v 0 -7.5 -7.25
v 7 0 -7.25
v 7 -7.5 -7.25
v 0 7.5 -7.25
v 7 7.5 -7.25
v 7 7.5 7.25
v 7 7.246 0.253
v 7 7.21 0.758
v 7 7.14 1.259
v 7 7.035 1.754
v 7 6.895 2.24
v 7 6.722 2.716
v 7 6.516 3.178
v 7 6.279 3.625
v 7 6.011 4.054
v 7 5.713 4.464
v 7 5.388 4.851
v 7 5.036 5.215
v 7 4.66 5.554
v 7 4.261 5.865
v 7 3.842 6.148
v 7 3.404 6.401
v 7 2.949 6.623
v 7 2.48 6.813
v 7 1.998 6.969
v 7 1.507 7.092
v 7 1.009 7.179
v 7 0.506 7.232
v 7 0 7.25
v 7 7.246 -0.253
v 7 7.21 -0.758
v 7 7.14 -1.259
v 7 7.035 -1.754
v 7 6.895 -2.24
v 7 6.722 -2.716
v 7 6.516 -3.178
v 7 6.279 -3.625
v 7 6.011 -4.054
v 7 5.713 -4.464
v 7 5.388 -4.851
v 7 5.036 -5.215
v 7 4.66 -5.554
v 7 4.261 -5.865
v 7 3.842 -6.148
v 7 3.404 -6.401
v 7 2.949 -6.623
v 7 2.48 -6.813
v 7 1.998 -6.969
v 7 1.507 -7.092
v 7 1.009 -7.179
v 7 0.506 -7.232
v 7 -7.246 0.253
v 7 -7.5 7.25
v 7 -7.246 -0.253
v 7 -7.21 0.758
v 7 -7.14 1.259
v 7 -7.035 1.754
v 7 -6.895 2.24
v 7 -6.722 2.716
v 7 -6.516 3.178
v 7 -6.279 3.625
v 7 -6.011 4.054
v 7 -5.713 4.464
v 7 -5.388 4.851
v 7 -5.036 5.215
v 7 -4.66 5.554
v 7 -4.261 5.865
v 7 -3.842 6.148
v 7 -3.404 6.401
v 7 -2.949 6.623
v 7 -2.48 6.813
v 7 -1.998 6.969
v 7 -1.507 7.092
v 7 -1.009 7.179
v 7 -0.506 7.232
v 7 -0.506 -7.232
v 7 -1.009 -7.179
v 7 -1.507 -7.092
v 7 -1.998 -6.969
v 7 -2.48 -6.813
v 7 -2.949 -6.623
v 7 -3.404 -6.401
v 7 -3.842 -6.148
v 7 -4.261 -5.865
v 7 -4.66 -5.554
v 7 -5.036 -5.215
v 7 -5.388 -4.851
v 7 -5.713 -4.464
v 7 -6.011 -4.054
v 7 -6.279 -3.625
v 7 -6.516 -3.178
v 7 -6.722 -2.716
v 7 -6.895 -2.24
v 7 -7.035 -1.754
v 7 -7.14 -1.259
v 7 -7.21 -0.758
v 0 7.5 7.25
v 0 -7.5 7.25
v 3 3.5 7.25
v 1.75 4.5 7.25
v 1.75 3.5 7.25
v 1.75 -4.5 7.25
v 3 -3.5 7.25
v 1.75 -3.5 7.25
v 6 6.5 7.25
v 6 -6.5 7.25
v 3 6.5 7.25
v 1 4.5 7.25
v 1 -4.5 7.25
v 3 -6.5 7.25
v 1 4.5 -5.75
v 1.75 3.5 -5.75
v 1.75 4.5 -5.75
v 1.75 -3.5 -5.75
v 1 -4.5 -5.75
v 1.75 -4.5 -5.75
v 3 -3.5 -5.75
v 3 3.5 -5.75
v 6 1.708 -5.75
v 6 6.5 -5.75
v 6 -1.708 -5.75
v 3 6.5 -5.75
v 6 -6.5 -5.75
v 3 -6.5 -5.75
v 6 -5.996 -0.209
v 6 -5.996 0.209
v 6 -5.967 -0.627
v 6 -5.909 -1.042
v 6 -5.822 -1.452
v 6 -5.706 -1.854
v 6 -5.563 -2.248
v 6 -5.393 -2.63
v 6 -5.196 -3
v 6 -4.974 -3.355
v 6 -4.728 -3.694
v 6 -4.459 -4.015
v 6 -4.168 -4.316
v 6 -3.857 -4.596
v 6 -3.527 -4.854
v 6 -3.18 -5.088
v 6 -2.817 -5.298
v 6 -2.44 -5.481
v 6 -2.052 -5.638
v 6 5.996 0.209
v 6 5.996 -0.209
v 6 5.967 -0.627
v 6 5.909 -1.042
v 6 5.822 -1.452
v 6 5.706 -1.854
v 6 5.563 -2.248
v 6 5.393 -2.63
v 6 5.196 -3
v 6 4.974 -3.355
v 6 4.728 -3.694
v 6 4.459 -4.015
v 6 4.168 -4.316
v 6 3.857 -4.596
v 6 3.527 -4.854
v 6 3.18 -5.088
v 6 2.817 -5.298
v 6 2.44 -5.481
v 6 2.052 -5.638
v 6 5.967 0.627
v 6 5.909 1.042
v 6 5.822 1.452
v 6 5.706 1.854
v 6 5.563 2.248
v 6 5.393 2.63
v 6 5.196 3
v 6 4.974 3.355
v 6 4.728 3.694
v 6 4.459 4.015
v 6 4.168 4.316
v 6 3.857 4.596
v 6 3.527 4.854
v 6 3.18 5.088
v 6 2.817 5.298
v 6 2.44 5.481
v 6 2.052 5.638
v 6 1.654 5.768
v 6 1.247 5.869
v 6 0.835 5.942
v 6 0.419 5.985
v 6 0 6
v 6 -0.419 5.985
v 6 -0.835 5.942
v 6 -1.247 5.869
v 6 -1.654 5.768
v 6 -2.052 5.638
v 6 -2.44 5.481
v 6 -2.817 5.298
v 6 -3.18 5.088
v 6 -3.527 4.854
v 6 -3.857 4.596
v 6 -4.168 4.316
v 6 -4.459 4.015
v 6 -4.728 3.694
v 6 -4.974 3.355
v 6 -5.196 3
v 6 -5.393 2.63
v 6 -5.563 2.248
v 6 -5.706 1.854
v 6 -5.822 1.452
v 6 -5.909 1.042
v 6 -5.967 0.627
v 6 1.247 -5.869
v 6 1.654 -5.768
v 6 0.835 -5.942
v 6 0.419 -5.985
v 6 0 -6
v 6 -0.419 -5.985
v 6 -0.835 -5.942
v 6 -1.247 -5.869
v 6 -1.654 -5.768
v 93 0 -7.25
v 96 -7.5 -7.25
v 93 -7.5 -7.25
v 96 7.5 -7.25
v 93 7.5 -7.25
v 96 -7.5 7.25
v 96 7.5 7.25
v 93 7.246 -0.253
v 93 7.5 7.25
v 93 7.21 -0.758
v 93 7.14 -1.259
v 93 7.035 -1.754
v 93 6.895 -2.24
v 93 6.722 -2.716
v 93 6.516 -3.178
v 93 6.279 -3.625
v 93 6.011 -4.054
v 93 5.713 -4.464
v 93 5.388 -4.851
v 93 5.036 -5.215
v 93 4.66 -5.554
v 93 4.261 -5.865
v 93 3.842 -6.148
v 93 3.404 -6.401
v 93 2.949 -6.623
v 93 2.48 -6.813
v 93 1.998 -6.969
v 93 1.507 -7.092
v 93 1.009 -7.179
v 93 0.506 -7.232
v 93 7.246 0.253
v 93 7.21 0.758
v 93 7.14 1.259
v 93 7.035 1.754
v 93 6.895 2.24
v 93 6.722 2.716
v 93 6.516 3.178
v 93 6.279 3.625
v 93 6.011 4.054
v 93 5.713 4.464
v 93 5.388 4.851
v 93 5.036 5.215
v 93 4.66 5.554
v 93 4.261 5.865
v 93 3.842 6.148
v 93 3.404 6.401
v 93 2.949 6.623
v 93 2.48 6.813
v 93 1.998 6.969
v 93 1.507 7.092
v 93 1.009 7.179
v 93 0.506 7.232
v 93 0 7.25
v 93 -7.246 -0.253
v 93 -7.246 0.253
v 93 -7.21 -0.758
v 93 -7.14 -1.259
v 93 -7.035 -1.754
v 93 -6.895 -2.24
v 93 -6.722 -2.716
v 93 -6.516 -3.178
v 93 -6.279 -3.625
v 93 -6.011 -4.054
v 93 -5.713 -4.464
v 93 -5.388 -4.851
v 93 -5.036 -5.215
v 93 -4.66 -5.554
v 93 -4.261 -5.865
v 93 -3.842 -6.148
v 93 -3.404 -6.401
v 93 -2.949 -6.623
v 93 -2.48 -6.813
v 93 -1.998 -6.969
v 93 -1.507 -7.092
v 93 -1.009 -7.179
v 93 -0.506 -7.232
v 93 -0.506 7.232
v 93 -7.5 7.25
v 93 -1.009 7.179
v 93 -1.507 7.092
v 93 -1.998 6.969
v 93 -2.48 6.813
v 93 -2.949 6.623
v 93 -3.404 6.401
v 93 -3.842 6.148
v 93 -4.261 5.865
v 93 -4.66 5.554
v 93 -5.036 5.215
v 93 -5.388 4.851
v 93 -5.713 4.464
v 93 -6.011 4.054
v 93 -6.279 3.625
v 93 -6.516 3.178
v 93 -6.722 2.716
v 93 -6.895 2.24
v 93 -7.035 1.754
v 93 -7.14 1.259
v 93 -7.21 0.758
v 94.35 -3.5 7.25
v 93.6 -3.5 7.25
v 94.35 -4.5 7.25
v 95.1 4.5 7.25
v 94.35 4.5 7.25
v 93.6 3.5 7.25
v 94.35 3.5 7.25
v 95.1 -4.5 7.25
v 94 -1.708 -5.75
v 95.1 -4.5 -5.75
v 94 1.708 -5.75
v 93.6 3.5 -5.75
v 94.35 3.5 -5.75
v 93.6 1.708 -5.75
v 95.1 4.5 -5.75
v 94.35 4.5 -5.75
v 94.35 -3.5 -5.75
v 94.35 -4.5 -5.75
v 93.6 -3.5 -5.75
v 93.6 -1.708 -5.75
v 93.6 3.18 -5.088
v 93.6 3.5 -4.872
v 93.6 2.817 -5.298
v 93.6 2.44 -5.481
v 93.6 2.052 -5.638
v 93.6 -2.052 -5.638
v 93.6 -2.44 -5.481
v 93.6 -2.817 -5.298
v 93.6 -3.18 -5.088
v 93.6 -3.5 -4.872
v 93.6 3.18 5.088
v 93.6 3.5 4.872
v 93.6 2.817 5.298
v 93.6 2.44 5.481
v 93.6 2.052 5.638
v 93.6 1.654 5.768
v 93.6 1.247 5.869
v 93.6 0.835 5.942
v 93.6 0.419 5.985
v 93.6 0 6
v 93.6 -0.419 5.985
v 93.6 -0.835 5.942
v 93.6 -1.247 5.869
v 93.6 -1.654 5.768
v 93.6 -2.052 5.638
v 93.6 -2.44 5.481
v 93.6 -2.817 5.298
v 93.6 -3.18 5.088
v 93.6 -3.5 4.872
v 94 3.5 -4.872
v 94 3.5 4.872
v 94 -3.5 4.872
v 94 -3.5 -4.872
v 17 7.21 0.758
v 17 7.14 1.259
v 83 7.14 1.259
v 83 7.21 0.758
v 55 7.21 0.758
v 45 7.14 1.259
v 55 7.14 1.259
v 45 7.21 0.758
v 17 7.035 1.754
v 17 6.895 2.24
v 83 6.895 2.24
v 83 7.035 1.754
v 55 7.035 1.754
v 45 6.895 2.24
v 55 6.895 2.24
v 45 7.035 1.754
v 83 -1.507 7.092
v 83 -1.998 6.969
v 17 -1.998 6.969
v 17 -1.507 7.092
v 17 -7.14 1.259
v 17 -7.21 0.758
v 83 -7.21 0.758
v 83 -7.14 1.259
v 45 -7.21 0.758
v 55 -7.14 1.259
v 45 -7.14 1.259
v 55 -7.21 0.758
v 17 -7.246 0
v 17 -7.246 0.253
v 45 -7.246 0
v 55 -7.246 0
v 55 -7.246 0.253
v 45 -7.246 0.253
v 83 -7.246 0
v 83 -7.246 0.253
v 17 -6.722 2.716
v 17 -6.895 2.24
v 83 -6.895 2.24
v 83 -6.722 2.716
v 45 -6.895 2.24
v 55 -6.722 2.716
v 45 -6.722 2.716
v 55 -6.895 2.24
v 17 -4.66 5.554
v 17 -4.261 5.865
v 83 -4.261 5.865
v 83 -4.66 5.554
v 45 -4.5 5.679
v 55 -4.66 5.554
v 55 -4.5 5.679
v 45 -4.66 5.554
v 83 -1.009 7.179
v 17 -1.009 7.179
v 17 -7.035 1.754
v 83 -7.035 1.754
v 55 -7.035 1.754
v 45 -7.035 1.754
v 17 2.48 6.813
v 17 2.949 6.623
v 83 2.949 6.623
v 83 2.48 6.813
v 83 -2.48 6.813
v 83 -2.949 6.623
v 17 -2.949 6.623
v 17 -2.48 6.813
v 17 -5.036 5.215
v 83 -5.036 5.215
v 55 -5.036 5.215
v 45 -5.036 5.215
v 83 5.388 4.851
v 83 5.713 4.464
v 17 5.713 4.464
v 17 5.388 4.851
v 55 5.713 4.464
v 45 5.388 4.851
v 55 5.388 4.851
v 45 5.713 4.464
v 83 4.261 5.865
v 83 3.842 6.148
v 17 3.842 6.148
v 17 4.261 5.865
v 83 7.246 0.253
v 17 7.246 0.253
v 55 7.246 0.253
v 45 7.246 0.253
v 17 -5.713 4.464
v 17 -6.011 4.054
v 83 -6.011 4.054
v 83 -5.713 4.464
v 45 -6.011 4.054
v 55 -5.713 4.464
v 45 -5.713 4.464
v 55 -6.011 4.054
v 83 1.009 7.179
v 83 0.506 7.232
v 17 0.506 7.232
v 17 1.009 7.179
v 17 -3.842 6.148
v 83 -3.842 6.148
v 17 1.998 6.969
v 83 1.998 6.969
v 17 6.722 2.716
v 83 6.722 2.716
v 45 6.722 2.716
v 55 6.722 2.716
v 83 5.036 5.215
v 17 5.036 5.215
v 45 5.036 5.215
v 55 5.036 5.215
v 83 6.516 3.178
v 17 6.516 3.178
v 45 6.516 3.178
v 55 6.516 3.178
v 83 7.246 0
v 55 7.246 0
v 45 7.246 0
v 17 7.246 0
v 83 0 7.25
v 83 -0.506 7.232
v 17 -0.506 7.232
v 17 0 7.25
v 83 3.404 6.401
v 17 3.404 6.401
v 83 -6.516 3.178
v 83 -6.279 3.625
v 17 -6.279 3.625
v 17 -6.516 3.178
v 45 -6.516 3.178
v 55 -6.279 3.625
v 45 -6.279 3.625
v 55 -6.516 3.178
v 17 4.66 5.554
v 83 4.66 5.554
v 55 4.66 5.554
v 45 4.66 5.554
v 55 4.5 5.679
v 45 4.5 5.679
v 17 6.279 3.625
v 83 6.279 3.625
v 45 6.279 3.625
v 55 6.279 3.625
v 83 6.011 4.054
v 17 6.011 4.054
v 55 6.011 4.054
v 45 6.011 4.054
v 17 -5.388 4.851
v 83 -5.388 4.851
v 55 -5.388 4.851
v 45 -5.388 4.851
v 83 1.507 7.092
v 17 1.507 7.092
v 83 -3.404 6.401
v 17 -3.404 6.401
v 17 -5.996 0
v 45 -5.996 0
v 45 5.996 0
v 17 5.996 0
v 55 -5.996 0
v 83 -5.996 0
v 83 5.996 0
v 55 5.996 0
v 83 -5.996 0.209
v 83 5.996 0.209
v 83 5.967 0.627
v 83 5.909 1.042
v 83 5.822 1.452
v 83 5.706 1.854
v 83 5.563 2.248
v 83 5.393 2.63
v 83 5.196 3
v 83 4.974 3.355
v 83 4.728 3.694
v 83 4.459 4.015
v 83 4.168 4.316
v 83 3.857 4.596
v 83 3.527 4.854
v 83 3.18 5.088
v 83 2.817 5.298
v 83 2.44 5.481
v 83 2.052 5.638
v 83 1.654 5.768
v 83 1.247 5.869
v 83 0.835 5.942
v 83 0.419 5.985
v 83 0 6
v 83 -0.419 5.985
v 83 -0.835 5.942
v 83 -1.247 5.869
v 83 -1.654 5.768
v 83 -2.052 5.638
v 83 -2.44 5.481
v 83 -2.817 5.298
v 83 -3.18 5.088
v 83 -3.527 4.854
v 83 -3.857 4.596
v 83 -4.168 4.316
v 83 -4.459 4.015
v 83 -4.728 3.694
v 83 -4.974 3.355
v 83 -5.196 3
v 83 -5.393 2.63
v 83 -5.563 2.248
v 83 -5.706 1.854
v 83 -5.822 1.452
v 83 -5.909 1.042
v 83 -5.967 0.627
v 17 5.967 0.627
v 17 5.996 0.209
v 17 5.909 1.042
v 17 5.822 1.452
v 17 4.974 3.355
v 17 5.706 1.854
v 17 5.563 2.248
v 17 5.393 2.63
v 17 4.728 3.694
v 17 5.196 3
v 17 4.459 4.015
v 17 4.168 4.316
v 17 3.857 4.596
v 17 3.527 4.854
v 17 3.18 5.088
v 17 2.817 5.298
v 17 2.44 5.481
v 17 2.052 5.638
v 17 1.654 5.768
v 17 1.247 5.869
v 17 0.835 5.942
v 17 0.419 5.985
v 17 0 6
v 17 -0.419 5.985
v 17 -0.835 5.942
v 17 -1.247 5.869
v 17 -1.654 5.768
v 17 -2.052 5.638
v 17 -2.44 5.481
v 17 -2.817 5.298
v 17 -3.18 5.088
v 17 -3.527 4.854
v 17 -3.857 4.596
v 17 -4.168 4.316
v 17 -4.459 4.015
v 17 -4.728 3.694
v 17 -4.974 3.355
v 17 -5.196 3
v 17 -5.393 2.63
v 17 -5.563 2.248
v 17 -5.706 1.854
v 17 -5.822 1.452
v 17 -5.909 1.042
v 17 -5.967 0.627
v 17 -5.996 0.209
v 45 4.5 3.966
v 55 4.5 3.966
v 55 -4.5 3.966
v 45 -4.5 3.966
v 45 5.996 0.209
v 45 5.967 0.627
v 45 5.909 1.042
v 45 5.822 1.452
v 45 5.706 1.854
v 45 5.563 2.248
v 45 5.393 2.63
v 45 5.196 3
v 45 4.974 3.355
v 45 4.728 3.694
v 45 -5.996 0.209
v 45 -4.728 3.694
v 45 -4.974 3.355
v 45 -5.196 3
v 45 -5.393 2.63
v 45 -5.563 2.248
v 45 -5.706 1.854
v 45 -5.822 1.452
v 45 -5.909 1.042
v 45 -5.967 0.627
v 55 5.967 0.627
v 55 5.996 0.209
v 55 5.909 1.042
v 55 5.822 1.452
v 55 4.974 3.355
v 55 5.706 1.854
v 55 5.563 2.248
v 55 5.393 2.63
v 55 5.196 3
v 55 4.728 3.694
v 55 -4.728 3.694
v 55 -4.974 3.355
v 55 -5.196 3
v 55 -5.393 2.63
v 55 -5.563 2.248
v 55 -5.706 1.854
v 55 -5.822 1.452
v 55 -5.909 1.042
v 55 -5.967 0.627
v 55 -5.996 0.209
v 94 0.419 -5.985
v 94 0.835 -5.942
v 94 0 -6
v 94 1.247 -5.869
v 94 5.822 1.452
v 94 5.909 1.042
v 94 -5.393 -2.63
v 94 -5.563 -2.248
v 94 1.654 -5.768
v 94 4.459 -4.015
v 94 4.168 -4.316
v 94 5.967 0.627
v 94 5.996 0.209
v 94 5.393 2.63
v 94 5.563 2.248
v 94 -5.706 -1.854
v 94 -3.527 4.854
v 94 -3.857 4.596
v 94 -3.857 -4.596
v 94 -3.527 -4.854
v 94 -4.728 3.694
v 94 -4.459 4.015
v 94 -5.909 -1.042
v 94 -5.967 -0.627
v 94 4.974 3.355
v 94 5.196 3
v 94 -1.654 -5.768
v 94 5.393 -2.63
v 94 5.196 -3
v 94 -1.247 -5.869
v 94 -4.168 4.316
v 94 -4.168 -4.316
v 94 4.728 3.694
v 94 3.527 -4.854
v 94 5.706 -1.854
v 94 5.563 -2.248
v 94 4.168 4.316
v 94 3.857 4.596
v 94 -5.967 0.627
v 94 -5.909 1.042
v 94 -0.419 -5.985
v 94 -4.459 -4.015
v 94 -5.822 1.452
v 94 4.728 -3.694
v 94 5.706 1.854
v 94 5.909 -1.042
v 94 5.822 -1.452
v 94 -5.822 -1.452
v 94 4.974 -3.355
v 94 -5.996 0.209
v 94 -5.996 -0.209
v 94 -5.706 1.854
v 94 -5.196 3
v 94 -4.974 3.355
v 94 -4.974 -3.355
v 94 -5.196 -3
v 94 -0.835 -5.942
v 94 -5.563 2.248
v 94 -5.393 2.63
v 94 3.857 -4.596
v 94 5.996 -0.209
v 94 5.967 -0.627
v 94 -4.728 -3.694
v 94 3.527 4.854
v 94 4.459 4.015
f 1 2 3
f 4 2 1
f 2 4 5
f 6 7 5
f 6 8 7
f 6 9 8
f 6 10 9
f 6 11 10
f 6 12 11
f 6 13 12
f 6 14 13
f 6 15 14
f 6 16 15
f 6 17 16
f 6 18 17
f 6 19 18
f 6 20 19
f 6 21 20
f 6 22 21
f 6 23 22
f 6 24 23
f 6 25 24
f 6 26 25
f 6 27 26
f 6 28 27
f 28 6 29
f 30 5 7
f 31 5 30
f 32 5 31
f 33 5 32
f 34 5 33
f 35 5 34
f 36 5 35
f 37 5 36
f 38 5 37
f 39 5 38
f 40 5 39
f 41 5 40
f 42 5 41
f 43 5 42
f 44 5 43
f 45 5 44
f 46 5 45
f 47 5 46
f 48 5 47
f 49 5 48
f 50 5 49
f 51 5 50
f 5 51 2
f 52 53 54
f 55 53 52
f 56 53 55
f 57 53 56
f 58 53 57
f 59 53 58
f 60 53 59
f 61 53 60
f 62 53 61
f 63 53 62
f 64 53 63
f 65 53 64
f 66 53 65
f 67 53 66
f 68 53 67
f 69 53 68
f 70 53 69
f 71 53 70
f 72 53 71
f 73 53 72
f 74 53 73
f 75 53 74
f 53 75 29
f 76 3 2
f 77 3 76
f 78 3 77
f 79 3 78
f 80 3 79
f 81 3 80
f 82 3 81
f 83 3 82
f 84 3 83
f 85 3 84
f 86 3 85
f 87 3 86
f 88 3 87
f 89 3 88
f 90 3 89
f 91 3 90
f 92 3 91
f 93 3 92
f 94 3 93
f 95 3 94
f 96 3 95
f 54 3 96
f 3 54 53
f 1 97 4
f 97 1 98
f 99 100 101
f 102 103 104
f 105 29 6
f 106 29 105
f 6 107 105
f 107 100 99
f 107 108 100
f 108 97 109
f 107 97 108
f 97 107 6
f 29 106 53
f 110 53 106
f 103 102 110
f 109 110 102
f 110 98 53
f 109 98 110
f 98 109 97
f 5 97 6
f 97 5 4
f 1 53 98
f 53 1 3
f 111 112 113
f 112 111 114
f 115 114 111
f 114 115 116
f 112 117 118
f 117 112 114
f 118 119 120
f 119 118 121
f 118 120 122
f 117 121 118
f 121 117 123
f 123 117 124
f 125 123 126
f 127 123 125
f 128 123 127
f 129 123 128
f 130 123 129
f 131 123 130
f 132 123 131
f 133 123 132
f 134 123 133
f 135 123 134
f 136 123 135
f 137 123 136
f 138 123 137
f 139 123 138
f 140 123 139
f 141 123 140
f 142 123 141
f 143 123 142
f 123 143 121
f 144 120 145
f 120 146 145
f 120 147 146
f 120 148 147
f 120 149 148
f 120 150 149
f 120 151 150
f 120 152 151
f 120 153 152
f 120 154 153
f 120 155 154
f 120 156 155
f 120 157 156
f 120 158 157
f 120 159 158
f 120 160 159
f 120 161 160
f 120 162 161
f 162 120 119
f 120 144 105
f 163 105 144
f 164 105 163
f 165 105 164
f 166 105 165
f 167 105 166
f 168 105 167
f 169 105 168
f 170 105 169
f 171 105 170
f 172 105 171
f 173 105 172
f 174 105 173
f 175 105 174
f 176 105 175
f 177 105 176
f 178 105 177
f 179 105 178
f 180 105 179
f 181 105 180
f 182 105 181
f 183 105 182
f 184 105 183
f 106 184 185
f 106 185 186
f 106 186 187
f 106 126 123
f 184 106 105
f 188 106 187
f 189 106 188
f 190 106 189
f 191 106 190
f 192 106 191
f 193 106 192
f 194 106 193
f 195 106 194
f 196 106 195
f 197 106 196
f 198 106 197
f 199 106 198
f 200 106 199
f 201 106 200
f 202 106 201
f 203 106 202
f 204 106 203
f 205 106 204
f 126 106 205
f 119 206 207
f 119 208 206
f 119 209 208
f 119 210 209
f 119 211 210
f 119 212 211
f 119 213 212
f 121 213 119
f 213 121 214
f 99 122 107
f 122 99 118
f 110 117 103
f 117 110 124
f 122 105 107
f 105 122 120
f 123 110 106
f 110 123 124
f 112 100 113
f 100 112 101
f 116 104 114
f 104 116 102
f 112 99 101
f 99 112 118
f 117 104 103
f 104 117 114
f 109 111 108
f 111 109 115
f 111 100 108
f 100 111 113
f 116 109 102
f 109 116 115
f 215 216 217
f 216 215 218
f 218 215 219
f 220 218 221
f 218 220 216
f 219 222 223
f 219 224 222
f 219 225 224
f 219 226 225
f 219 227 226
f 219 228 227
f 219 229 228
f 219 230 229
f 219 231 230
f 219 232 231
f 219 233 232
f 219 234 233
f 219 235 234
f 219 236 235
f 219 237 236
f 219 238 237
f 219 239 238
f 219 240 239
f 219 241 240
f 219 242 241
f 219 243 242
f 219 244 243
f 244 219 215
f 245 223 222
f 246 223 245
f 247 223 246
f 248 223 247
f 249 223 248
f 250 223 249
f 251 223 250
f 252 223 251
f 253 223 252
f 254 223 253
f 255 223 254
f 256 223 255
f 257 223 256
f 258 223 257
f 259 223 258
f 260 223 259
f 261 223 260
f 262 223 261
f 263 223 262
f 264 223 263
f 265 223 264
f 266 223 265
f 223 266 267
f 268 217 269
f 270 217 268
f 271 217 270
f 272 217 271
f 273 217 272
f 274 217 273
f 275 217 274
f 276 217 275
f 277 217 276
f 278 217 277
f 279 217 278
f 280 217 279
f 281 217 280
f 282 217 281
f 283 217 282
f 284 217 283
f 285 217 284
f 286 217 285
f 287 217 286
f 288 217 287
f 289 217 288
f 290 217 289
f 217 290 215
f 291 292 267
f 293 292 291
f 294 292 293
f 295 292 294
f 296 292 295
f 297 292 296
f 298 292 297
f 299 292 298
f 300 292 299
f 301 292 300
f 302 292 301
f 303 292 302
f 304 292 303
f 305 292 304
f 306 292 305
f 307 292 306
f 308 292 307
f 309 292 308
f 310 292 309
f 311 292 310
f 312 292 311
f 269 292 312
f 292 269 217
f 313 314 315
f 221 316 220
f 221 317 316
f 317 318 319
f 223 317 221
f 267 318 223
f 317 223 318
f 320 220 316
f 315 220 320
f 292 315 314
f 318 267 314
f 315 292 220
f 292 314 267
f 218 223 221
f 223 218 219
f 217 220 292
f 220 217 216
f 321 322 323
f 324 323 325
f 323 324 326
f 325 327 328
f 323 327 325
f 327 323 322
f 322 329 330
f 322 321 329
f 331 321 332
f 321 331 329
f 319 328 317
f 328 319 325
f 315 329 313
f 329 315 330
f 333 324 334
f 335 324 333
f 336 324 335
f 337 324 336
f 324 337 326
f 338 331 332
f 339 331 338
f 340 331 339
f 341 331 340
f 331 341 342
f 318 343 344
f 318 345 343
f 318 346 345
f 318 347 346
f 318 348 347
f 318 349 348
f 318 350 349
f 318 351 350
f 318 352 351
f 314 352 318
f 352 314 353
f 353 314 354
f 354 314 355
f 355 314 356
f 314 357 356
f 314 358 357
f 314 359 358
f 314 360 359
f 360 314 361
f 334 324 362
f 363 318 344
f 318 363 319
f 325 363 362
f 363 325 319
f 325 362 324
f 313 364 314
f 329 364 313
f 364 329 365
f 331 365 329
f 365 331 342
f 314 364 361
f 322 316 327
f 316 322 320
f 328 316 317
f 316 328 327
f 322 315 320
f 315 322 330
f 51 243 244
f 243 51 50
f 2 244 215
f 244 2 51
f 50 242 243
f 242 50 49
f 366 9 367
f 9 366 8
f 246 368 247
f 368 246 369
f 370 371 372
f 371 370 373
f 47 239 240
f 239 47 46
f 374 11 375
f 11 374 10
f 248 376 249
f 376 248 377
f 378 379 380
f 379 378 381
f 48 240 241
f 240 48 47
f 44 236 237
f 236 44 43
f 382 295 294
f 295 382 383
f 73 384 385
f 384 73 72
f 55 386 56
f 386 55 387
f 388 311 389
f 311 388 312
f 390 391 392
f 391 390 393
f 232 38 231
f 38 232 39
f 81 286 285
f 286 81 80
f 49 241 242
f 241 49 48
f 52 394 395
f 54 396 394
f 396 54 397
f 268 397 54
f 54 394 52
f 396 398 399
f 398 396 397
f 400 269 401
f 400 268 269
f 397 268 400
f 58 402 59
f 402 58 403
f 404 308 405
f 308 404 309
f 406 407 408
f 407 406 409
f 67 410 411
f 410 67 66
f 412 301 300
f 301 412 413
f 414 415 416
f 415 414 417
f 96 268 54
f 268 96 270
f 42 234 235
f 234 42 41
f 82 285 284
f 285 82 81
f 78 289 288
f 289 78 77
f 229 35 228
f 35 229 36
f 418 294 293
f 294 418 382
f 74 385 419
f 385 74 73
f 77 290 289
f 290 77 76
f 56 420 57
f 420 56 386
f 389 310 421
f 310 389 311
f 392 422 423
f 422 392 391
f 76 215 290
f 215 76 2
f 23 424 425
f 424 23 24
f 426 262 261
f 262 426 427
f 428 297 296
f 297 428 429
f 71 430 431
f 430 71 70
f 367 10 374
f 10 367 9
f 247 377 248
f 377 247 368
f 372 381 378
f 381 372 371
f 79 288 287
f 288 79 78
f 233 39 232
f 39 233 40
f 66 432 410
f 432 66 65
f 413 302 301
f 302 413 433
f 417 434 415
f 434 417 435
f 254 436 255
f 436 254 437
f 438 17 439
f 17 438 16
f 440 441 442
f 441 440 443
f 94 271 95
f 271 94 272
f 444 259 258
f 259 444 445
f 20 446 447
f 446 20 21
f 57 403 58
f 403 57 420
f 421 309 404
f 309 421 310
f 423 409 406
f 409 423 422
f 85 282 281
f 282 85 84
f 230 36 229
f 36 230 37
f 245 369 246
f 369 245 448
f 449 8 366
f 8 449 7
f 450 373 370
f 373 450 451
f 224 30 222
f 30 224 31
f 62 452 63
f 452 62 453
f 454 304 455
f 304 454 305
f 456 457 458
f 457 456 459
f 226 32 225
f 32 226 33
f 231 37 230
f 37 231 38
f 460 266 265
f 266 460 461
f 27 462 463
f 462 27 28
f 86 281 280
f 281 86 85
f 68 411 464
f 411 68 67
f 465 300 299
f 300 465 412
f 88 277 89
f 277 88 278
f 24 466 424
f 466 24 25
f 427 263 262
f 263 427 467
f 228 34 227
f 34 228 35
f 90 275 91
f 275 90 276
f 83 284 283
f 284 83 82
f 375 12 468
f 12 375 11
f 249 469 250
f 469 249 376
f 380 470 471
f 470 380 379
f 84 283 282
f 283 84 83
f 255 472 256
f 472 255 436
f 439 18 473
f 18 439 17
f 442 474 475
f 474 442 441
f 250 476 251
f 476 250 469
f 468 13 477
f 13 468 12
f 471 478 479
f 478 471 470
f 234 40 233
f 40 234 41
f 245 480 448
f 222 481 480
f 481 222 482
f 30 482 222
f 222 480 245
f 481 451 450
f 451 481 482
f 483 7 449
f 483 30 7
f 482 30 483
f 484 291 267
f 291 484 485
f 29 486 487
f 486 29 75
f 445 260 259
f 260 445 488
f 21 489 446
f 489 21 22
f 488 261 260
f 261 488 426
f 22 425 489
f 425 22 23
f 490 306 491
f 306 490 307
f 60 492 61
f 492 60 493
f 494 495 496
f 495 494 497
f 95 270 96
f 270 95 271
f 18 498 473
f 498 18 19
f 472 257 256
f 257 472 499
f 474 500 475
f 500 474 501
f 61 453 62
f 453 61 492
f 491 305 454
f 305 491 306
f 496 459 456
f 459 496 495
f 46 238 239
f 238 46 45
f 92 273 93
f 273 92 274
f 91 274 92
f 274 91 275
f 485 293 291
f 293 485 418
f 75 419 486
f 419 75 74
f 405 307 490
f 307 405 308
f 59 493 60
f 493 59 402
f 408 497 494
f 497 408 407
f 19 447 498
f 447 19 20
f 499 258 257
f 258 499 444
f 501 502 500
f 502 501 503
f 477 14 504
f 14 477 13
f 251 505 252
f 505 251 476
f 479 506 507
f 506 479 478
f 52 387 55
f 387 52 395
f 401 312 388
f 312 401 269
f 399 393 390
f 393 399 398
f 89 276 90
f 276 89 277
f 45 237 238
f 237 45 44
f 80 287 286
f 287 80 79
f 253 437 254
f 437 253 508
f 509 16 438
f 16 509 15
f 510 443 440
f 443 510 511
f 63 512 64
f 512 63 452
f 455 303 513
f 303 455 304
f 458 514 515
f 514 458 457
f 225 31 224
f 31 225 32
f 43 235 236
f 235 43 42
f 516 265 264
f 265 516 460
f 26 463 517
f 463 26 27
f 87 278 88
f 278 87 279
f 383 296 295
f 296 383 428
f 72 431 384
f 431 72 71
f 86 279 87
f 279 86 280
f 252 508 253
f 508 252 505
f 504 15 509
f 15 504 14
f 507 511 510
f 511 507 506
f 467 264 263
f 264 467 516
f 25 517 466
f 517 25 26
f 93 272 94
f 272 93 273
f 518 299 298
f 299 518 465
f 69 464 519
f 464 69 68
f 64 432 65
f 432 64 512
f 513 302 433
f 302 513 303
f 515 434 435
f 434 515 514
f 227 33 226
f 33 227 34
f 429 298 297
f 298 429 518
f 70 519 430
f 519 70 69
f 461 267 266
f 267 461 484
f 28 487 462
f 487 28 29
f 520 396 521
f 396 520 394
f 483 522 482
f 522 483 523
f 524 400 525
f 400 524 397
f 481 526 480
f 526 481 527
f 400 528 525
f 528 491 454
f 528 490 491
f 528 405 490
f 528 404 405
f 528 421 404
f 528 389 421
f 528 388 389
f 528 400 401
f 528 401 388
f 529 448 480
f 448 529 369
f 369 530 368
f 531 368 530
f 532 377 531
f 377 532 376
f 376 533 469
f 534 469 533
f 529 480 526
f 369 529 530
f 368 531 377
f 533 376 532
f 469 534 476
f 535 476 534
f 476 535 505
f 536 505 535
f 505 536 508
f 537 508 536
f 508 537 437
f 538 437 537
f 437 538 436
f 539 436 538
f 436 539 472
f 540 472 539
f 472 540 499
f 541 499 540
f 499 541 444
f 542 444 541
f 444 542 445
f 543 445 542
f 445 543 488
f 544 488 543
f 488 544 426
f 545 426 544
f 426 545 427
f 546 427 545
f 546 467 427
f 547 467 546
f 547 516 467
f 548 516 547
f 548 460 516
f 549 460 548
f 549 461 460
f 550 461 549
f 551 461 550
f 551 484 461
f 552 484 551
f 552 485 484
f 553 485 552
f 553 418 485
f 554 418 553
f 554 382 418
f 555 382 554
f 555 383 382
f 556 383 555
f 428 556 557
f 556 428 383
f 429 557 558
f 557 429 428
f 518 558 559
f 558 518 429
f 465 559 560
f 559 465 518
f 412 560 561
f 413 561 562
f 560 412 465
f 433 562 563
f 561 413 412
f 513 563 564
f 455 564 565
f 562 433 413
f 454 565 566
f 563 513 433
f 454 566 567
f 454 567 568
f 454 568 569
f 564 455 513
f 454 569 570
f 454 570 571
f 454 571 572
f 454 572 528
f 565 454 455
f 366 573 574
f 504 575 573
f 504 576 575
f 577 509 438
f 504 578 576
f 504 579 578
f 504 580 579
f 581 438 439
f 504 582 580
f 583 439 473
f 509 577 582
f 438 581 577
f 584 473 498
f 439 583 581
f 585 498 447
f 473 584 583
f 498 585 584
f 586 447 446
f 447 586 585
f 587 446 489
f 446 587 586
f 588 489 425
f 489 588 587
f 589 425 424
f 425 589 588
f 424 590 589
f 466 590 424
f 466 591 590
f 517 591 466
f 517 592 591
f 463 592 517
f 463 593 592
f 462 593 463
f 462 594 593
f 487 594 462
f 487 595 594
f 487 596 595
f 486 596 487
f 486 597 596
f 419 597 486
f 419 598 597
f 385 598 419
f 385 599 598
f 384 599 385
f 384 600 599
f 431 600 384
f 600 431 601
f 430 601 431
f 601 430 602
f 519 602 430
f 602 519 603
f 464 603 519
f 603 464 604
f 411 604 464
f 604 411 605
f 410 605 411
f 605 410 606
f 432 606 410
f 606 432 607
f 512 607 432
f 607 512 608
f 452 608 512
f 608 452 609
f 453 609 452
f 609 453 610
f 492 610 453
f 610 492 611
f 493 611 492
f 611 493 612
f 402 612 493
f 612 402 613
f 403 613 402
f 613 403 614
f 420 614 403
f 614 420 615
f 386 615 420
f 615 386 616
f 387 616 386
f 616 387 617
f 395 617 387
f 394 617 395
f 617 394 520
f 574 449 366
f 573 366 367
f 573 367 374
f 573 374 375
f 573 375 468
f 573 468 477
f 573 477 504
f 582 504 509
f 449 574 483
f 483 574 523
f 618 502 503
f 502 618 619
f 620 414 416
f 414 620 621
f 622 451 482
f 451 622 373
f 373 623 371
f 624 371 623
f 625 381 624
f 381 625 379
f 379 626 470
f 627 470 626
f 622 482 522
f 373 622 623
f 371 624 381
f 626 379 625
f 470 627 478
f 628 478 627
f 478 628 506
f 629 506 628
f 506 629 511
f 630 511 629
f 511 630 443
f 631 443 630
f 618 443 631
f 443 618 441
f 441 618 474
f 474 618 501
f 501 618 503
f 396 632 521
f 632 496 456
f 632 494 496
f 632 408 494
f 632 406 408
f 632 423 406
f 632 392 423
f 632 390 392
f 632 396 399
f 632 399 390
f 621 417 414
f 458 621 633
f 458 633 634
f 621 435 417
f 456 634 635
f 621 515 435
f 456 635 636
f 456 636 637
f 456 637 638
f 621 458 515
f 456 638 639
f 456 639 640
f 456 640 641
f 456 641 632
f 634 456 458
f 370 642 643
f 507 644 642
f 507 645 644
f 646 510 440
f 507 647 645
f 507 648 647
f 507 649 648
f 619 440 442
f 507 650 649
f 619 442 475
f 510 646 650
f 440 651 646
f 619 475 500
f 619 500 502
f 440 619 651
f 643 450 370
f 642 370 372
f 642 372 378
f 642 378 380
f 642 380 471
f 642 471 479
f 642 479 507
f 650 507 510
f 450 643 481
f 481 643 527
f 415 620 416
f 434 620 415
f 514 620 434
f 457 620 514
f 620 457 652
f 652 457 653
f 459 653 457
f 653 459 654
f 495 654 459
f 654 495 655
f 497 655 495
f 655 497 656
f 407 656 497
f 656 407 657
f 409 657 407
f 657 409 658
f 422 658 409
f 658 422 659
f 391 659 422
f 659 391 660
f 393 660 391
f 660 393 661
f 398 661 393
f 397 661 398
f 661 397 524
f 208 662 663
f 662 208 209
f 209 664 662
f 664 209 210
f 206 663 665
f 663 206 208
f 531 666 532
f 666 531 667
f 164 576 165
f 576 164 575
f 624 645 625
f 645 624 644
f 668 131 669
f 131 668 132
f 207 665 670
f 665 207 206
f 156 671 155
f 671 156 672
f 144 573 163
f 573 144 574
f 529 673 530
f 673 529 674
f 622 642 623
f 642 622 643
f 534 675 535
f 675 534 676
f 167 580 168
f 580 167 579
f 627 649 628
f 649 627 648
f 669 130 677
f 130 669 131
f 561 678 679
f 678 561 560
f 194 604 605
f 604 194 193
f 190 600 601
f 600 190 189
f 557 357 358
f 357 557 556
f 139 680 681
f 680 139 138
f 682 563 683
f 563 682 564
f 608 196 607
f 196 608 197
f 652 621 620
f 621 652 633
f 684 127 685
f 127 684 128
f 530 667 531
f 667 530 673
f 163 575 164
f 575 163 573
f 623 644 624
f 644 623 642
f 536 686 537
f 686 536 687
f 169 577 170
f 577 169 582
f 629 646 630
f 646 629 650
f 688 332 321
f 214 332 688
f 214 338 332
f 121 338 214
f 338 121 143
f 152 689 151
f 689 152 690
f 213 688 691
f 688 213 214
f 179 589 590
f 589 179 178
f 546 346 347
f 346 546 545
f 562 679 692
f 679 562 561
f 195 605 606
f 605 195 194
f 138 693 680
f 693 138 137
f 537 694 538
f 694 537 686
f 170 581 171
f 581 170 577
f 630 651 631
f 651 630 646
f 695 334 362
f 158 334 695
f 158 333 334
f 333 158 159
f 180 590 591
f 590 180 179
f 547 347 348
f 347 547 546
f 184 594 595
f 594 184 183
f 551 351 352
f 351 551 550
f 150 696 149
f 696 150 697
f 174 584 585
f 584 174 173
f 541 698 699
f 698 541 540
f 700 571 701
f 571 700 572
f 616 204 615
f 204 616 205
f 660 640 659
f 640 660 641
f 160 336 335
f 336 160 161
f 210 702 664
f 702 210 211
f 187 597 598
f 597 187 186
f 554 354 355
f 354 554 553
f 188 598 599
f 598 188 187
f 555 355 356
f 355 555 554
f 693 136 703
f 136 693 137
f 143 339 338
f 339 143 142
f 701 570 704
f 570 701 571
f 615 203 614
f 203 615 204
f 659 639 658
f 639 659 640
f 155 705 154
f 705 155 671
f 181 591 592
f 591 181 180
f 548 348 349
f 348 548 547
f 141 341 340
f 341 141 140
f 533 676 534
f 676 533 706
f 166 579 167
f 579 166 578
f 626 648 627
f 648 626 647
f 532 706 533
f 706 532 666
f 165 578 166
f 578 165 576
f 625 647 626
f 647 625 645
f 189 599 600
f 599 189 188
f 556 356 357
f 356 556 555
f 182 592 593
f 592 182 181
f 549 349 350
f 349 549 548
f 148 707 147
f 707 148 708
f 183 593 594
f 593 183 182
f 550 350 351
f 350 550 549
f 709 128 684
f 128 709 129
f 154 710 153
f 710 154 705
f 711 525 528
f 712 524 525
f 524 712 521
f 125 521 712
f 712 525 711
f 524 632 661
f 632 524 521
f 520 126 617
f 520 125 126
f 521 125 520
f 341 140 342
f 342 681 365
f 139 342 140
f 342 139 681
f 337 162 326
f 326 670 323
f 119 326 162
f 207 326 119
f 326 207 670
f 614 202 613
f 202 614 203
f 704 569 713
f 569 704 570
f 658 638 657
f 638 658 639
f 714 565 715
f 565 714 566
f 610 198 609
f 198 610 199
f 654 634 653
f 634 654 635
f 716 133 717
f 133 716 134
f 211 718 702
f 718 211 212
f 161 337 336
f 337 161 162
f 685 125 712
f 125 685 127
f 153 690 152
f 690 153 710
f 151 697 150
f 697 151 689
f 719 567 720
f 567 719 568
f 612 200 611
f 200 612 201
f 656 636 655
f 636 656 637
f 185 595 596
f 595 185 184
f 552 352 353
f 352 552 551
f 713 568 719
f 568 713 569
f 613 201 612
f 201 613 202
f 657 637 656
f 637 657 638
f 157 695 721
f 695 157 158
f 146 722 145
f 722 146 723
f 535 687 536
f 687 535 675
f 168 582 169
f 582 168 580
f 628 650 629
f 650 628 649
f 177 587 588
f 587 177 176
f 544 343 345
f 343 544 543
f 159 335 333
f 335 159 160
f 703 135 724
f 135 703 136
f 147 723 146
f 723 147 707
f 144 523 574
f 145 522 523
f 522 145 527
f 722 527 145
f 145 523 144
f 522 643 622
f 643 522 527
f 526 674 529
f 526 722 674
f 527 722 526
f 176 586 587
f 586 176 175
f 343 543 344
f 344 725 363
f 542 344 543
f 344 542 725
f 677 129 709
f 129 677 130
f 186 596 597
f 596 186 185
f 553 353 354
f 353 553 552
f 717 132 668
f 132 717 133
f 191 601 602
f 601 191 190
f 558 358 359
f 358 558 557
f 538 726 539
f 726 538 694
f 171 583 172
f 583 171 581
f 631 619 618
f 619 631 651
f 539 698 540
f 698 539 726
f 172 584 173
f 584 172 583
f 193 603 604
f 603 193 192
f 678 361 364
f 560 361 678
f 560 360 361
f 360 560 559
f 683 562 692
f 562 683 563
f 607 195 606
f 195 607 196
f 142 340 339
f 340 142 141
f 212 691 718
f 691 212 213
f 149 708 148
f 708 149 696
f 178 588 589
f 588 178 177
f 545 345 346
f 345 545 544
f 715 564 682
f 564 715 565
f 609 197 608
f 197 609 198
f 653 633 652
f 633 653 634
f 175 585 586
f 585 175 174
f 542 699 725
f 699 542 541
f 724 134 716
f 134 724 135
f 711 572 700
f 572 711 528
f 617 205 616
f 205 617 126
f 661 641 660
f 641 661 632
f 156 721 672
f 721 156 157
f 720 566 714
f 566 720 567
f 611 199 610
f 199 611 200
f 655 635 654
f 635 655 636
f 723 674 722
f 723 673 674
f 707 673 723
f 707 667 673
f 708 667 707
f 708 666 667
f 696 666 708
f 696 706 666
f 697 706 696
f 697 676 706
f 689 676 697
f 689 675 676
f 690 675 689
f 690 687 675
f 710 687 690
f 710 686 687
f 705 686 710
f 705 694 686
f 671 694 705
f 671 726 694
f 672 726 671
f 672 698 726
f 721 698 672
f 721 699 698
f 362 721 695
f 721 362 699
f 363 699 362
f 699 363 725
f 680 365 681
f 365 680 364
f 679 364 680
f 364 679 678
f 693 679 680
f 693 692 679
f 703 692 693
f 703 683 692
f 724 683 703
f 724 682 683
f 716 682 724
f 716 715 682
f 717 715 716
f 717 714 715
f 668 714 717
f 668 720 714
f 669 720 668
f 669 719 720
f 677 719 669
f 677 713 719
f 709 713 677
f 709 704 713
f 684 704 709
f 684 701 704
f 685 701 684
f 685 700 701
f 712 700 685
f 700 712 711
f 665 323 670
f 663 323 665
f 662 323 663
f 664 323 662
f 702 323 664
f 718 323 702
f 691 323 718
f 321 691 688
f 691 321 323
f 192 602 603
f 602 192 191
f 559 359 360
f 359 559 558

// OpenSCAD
/*
A 3D-printable adapter from an Ever Ready 532 to two AAA cells

(c) Jenny List 2024
CC-BY-SA 4.0

Designed for 1960s Polaroid bellows cameras which used this cell.
Tested on a Polaroid 104, other similar cameras use the same batteries.

I print this with a brim, and supports on the bed.

*/

module AAAcell(){
    cylinder(42.45,5.1,5.1);
    translate([0,0,42.45]) cylinder(1.12,1.6,1.6);
}


//translate([0,0,10]) AAAcell();
//translate([0,0,53.57]) AAAcell();
$fn=90;

rotate([0,90,0]){
    difference(){
        union(){
            translate([-7.25,-7.5,0]){
                difference(){ // -ve contact
                    cube([14.5,15,7]);
                    translate([0,1,3]) cube([13,13,3]);
                    translate([0,4,1.75]) cube([13,7,2.25]);
                    translate([0,3,1]) cube([13,9,0.75]);
                }
            }
            translate([-7.25,-7.5,93]){
                difference(){ // +ve contact
                    cube([14.5,15,3]);
                    translate([0,4,0.6]) cube([13,7,0.75]);
                    translate([0,3,1.35]) cube([13,9,0.75]);
                }
            }
            translate([0,0,7]) {
                difference(){//battery tube for 2 AAA cells
                    cylinder(86,7.25,7.25);
                    translate([-10,-4.5,10]) cube([10,9,66]);
                    translate([-10,-7.5,10]) cube([10,15,28]);
                    translate([-10,-7.5,48]) cube([10,15,28]);
                }
            }
        }
        translate([0,0,6]) cylinder(88,6,6); //middle of tube, clip to hold cells
    }
}
